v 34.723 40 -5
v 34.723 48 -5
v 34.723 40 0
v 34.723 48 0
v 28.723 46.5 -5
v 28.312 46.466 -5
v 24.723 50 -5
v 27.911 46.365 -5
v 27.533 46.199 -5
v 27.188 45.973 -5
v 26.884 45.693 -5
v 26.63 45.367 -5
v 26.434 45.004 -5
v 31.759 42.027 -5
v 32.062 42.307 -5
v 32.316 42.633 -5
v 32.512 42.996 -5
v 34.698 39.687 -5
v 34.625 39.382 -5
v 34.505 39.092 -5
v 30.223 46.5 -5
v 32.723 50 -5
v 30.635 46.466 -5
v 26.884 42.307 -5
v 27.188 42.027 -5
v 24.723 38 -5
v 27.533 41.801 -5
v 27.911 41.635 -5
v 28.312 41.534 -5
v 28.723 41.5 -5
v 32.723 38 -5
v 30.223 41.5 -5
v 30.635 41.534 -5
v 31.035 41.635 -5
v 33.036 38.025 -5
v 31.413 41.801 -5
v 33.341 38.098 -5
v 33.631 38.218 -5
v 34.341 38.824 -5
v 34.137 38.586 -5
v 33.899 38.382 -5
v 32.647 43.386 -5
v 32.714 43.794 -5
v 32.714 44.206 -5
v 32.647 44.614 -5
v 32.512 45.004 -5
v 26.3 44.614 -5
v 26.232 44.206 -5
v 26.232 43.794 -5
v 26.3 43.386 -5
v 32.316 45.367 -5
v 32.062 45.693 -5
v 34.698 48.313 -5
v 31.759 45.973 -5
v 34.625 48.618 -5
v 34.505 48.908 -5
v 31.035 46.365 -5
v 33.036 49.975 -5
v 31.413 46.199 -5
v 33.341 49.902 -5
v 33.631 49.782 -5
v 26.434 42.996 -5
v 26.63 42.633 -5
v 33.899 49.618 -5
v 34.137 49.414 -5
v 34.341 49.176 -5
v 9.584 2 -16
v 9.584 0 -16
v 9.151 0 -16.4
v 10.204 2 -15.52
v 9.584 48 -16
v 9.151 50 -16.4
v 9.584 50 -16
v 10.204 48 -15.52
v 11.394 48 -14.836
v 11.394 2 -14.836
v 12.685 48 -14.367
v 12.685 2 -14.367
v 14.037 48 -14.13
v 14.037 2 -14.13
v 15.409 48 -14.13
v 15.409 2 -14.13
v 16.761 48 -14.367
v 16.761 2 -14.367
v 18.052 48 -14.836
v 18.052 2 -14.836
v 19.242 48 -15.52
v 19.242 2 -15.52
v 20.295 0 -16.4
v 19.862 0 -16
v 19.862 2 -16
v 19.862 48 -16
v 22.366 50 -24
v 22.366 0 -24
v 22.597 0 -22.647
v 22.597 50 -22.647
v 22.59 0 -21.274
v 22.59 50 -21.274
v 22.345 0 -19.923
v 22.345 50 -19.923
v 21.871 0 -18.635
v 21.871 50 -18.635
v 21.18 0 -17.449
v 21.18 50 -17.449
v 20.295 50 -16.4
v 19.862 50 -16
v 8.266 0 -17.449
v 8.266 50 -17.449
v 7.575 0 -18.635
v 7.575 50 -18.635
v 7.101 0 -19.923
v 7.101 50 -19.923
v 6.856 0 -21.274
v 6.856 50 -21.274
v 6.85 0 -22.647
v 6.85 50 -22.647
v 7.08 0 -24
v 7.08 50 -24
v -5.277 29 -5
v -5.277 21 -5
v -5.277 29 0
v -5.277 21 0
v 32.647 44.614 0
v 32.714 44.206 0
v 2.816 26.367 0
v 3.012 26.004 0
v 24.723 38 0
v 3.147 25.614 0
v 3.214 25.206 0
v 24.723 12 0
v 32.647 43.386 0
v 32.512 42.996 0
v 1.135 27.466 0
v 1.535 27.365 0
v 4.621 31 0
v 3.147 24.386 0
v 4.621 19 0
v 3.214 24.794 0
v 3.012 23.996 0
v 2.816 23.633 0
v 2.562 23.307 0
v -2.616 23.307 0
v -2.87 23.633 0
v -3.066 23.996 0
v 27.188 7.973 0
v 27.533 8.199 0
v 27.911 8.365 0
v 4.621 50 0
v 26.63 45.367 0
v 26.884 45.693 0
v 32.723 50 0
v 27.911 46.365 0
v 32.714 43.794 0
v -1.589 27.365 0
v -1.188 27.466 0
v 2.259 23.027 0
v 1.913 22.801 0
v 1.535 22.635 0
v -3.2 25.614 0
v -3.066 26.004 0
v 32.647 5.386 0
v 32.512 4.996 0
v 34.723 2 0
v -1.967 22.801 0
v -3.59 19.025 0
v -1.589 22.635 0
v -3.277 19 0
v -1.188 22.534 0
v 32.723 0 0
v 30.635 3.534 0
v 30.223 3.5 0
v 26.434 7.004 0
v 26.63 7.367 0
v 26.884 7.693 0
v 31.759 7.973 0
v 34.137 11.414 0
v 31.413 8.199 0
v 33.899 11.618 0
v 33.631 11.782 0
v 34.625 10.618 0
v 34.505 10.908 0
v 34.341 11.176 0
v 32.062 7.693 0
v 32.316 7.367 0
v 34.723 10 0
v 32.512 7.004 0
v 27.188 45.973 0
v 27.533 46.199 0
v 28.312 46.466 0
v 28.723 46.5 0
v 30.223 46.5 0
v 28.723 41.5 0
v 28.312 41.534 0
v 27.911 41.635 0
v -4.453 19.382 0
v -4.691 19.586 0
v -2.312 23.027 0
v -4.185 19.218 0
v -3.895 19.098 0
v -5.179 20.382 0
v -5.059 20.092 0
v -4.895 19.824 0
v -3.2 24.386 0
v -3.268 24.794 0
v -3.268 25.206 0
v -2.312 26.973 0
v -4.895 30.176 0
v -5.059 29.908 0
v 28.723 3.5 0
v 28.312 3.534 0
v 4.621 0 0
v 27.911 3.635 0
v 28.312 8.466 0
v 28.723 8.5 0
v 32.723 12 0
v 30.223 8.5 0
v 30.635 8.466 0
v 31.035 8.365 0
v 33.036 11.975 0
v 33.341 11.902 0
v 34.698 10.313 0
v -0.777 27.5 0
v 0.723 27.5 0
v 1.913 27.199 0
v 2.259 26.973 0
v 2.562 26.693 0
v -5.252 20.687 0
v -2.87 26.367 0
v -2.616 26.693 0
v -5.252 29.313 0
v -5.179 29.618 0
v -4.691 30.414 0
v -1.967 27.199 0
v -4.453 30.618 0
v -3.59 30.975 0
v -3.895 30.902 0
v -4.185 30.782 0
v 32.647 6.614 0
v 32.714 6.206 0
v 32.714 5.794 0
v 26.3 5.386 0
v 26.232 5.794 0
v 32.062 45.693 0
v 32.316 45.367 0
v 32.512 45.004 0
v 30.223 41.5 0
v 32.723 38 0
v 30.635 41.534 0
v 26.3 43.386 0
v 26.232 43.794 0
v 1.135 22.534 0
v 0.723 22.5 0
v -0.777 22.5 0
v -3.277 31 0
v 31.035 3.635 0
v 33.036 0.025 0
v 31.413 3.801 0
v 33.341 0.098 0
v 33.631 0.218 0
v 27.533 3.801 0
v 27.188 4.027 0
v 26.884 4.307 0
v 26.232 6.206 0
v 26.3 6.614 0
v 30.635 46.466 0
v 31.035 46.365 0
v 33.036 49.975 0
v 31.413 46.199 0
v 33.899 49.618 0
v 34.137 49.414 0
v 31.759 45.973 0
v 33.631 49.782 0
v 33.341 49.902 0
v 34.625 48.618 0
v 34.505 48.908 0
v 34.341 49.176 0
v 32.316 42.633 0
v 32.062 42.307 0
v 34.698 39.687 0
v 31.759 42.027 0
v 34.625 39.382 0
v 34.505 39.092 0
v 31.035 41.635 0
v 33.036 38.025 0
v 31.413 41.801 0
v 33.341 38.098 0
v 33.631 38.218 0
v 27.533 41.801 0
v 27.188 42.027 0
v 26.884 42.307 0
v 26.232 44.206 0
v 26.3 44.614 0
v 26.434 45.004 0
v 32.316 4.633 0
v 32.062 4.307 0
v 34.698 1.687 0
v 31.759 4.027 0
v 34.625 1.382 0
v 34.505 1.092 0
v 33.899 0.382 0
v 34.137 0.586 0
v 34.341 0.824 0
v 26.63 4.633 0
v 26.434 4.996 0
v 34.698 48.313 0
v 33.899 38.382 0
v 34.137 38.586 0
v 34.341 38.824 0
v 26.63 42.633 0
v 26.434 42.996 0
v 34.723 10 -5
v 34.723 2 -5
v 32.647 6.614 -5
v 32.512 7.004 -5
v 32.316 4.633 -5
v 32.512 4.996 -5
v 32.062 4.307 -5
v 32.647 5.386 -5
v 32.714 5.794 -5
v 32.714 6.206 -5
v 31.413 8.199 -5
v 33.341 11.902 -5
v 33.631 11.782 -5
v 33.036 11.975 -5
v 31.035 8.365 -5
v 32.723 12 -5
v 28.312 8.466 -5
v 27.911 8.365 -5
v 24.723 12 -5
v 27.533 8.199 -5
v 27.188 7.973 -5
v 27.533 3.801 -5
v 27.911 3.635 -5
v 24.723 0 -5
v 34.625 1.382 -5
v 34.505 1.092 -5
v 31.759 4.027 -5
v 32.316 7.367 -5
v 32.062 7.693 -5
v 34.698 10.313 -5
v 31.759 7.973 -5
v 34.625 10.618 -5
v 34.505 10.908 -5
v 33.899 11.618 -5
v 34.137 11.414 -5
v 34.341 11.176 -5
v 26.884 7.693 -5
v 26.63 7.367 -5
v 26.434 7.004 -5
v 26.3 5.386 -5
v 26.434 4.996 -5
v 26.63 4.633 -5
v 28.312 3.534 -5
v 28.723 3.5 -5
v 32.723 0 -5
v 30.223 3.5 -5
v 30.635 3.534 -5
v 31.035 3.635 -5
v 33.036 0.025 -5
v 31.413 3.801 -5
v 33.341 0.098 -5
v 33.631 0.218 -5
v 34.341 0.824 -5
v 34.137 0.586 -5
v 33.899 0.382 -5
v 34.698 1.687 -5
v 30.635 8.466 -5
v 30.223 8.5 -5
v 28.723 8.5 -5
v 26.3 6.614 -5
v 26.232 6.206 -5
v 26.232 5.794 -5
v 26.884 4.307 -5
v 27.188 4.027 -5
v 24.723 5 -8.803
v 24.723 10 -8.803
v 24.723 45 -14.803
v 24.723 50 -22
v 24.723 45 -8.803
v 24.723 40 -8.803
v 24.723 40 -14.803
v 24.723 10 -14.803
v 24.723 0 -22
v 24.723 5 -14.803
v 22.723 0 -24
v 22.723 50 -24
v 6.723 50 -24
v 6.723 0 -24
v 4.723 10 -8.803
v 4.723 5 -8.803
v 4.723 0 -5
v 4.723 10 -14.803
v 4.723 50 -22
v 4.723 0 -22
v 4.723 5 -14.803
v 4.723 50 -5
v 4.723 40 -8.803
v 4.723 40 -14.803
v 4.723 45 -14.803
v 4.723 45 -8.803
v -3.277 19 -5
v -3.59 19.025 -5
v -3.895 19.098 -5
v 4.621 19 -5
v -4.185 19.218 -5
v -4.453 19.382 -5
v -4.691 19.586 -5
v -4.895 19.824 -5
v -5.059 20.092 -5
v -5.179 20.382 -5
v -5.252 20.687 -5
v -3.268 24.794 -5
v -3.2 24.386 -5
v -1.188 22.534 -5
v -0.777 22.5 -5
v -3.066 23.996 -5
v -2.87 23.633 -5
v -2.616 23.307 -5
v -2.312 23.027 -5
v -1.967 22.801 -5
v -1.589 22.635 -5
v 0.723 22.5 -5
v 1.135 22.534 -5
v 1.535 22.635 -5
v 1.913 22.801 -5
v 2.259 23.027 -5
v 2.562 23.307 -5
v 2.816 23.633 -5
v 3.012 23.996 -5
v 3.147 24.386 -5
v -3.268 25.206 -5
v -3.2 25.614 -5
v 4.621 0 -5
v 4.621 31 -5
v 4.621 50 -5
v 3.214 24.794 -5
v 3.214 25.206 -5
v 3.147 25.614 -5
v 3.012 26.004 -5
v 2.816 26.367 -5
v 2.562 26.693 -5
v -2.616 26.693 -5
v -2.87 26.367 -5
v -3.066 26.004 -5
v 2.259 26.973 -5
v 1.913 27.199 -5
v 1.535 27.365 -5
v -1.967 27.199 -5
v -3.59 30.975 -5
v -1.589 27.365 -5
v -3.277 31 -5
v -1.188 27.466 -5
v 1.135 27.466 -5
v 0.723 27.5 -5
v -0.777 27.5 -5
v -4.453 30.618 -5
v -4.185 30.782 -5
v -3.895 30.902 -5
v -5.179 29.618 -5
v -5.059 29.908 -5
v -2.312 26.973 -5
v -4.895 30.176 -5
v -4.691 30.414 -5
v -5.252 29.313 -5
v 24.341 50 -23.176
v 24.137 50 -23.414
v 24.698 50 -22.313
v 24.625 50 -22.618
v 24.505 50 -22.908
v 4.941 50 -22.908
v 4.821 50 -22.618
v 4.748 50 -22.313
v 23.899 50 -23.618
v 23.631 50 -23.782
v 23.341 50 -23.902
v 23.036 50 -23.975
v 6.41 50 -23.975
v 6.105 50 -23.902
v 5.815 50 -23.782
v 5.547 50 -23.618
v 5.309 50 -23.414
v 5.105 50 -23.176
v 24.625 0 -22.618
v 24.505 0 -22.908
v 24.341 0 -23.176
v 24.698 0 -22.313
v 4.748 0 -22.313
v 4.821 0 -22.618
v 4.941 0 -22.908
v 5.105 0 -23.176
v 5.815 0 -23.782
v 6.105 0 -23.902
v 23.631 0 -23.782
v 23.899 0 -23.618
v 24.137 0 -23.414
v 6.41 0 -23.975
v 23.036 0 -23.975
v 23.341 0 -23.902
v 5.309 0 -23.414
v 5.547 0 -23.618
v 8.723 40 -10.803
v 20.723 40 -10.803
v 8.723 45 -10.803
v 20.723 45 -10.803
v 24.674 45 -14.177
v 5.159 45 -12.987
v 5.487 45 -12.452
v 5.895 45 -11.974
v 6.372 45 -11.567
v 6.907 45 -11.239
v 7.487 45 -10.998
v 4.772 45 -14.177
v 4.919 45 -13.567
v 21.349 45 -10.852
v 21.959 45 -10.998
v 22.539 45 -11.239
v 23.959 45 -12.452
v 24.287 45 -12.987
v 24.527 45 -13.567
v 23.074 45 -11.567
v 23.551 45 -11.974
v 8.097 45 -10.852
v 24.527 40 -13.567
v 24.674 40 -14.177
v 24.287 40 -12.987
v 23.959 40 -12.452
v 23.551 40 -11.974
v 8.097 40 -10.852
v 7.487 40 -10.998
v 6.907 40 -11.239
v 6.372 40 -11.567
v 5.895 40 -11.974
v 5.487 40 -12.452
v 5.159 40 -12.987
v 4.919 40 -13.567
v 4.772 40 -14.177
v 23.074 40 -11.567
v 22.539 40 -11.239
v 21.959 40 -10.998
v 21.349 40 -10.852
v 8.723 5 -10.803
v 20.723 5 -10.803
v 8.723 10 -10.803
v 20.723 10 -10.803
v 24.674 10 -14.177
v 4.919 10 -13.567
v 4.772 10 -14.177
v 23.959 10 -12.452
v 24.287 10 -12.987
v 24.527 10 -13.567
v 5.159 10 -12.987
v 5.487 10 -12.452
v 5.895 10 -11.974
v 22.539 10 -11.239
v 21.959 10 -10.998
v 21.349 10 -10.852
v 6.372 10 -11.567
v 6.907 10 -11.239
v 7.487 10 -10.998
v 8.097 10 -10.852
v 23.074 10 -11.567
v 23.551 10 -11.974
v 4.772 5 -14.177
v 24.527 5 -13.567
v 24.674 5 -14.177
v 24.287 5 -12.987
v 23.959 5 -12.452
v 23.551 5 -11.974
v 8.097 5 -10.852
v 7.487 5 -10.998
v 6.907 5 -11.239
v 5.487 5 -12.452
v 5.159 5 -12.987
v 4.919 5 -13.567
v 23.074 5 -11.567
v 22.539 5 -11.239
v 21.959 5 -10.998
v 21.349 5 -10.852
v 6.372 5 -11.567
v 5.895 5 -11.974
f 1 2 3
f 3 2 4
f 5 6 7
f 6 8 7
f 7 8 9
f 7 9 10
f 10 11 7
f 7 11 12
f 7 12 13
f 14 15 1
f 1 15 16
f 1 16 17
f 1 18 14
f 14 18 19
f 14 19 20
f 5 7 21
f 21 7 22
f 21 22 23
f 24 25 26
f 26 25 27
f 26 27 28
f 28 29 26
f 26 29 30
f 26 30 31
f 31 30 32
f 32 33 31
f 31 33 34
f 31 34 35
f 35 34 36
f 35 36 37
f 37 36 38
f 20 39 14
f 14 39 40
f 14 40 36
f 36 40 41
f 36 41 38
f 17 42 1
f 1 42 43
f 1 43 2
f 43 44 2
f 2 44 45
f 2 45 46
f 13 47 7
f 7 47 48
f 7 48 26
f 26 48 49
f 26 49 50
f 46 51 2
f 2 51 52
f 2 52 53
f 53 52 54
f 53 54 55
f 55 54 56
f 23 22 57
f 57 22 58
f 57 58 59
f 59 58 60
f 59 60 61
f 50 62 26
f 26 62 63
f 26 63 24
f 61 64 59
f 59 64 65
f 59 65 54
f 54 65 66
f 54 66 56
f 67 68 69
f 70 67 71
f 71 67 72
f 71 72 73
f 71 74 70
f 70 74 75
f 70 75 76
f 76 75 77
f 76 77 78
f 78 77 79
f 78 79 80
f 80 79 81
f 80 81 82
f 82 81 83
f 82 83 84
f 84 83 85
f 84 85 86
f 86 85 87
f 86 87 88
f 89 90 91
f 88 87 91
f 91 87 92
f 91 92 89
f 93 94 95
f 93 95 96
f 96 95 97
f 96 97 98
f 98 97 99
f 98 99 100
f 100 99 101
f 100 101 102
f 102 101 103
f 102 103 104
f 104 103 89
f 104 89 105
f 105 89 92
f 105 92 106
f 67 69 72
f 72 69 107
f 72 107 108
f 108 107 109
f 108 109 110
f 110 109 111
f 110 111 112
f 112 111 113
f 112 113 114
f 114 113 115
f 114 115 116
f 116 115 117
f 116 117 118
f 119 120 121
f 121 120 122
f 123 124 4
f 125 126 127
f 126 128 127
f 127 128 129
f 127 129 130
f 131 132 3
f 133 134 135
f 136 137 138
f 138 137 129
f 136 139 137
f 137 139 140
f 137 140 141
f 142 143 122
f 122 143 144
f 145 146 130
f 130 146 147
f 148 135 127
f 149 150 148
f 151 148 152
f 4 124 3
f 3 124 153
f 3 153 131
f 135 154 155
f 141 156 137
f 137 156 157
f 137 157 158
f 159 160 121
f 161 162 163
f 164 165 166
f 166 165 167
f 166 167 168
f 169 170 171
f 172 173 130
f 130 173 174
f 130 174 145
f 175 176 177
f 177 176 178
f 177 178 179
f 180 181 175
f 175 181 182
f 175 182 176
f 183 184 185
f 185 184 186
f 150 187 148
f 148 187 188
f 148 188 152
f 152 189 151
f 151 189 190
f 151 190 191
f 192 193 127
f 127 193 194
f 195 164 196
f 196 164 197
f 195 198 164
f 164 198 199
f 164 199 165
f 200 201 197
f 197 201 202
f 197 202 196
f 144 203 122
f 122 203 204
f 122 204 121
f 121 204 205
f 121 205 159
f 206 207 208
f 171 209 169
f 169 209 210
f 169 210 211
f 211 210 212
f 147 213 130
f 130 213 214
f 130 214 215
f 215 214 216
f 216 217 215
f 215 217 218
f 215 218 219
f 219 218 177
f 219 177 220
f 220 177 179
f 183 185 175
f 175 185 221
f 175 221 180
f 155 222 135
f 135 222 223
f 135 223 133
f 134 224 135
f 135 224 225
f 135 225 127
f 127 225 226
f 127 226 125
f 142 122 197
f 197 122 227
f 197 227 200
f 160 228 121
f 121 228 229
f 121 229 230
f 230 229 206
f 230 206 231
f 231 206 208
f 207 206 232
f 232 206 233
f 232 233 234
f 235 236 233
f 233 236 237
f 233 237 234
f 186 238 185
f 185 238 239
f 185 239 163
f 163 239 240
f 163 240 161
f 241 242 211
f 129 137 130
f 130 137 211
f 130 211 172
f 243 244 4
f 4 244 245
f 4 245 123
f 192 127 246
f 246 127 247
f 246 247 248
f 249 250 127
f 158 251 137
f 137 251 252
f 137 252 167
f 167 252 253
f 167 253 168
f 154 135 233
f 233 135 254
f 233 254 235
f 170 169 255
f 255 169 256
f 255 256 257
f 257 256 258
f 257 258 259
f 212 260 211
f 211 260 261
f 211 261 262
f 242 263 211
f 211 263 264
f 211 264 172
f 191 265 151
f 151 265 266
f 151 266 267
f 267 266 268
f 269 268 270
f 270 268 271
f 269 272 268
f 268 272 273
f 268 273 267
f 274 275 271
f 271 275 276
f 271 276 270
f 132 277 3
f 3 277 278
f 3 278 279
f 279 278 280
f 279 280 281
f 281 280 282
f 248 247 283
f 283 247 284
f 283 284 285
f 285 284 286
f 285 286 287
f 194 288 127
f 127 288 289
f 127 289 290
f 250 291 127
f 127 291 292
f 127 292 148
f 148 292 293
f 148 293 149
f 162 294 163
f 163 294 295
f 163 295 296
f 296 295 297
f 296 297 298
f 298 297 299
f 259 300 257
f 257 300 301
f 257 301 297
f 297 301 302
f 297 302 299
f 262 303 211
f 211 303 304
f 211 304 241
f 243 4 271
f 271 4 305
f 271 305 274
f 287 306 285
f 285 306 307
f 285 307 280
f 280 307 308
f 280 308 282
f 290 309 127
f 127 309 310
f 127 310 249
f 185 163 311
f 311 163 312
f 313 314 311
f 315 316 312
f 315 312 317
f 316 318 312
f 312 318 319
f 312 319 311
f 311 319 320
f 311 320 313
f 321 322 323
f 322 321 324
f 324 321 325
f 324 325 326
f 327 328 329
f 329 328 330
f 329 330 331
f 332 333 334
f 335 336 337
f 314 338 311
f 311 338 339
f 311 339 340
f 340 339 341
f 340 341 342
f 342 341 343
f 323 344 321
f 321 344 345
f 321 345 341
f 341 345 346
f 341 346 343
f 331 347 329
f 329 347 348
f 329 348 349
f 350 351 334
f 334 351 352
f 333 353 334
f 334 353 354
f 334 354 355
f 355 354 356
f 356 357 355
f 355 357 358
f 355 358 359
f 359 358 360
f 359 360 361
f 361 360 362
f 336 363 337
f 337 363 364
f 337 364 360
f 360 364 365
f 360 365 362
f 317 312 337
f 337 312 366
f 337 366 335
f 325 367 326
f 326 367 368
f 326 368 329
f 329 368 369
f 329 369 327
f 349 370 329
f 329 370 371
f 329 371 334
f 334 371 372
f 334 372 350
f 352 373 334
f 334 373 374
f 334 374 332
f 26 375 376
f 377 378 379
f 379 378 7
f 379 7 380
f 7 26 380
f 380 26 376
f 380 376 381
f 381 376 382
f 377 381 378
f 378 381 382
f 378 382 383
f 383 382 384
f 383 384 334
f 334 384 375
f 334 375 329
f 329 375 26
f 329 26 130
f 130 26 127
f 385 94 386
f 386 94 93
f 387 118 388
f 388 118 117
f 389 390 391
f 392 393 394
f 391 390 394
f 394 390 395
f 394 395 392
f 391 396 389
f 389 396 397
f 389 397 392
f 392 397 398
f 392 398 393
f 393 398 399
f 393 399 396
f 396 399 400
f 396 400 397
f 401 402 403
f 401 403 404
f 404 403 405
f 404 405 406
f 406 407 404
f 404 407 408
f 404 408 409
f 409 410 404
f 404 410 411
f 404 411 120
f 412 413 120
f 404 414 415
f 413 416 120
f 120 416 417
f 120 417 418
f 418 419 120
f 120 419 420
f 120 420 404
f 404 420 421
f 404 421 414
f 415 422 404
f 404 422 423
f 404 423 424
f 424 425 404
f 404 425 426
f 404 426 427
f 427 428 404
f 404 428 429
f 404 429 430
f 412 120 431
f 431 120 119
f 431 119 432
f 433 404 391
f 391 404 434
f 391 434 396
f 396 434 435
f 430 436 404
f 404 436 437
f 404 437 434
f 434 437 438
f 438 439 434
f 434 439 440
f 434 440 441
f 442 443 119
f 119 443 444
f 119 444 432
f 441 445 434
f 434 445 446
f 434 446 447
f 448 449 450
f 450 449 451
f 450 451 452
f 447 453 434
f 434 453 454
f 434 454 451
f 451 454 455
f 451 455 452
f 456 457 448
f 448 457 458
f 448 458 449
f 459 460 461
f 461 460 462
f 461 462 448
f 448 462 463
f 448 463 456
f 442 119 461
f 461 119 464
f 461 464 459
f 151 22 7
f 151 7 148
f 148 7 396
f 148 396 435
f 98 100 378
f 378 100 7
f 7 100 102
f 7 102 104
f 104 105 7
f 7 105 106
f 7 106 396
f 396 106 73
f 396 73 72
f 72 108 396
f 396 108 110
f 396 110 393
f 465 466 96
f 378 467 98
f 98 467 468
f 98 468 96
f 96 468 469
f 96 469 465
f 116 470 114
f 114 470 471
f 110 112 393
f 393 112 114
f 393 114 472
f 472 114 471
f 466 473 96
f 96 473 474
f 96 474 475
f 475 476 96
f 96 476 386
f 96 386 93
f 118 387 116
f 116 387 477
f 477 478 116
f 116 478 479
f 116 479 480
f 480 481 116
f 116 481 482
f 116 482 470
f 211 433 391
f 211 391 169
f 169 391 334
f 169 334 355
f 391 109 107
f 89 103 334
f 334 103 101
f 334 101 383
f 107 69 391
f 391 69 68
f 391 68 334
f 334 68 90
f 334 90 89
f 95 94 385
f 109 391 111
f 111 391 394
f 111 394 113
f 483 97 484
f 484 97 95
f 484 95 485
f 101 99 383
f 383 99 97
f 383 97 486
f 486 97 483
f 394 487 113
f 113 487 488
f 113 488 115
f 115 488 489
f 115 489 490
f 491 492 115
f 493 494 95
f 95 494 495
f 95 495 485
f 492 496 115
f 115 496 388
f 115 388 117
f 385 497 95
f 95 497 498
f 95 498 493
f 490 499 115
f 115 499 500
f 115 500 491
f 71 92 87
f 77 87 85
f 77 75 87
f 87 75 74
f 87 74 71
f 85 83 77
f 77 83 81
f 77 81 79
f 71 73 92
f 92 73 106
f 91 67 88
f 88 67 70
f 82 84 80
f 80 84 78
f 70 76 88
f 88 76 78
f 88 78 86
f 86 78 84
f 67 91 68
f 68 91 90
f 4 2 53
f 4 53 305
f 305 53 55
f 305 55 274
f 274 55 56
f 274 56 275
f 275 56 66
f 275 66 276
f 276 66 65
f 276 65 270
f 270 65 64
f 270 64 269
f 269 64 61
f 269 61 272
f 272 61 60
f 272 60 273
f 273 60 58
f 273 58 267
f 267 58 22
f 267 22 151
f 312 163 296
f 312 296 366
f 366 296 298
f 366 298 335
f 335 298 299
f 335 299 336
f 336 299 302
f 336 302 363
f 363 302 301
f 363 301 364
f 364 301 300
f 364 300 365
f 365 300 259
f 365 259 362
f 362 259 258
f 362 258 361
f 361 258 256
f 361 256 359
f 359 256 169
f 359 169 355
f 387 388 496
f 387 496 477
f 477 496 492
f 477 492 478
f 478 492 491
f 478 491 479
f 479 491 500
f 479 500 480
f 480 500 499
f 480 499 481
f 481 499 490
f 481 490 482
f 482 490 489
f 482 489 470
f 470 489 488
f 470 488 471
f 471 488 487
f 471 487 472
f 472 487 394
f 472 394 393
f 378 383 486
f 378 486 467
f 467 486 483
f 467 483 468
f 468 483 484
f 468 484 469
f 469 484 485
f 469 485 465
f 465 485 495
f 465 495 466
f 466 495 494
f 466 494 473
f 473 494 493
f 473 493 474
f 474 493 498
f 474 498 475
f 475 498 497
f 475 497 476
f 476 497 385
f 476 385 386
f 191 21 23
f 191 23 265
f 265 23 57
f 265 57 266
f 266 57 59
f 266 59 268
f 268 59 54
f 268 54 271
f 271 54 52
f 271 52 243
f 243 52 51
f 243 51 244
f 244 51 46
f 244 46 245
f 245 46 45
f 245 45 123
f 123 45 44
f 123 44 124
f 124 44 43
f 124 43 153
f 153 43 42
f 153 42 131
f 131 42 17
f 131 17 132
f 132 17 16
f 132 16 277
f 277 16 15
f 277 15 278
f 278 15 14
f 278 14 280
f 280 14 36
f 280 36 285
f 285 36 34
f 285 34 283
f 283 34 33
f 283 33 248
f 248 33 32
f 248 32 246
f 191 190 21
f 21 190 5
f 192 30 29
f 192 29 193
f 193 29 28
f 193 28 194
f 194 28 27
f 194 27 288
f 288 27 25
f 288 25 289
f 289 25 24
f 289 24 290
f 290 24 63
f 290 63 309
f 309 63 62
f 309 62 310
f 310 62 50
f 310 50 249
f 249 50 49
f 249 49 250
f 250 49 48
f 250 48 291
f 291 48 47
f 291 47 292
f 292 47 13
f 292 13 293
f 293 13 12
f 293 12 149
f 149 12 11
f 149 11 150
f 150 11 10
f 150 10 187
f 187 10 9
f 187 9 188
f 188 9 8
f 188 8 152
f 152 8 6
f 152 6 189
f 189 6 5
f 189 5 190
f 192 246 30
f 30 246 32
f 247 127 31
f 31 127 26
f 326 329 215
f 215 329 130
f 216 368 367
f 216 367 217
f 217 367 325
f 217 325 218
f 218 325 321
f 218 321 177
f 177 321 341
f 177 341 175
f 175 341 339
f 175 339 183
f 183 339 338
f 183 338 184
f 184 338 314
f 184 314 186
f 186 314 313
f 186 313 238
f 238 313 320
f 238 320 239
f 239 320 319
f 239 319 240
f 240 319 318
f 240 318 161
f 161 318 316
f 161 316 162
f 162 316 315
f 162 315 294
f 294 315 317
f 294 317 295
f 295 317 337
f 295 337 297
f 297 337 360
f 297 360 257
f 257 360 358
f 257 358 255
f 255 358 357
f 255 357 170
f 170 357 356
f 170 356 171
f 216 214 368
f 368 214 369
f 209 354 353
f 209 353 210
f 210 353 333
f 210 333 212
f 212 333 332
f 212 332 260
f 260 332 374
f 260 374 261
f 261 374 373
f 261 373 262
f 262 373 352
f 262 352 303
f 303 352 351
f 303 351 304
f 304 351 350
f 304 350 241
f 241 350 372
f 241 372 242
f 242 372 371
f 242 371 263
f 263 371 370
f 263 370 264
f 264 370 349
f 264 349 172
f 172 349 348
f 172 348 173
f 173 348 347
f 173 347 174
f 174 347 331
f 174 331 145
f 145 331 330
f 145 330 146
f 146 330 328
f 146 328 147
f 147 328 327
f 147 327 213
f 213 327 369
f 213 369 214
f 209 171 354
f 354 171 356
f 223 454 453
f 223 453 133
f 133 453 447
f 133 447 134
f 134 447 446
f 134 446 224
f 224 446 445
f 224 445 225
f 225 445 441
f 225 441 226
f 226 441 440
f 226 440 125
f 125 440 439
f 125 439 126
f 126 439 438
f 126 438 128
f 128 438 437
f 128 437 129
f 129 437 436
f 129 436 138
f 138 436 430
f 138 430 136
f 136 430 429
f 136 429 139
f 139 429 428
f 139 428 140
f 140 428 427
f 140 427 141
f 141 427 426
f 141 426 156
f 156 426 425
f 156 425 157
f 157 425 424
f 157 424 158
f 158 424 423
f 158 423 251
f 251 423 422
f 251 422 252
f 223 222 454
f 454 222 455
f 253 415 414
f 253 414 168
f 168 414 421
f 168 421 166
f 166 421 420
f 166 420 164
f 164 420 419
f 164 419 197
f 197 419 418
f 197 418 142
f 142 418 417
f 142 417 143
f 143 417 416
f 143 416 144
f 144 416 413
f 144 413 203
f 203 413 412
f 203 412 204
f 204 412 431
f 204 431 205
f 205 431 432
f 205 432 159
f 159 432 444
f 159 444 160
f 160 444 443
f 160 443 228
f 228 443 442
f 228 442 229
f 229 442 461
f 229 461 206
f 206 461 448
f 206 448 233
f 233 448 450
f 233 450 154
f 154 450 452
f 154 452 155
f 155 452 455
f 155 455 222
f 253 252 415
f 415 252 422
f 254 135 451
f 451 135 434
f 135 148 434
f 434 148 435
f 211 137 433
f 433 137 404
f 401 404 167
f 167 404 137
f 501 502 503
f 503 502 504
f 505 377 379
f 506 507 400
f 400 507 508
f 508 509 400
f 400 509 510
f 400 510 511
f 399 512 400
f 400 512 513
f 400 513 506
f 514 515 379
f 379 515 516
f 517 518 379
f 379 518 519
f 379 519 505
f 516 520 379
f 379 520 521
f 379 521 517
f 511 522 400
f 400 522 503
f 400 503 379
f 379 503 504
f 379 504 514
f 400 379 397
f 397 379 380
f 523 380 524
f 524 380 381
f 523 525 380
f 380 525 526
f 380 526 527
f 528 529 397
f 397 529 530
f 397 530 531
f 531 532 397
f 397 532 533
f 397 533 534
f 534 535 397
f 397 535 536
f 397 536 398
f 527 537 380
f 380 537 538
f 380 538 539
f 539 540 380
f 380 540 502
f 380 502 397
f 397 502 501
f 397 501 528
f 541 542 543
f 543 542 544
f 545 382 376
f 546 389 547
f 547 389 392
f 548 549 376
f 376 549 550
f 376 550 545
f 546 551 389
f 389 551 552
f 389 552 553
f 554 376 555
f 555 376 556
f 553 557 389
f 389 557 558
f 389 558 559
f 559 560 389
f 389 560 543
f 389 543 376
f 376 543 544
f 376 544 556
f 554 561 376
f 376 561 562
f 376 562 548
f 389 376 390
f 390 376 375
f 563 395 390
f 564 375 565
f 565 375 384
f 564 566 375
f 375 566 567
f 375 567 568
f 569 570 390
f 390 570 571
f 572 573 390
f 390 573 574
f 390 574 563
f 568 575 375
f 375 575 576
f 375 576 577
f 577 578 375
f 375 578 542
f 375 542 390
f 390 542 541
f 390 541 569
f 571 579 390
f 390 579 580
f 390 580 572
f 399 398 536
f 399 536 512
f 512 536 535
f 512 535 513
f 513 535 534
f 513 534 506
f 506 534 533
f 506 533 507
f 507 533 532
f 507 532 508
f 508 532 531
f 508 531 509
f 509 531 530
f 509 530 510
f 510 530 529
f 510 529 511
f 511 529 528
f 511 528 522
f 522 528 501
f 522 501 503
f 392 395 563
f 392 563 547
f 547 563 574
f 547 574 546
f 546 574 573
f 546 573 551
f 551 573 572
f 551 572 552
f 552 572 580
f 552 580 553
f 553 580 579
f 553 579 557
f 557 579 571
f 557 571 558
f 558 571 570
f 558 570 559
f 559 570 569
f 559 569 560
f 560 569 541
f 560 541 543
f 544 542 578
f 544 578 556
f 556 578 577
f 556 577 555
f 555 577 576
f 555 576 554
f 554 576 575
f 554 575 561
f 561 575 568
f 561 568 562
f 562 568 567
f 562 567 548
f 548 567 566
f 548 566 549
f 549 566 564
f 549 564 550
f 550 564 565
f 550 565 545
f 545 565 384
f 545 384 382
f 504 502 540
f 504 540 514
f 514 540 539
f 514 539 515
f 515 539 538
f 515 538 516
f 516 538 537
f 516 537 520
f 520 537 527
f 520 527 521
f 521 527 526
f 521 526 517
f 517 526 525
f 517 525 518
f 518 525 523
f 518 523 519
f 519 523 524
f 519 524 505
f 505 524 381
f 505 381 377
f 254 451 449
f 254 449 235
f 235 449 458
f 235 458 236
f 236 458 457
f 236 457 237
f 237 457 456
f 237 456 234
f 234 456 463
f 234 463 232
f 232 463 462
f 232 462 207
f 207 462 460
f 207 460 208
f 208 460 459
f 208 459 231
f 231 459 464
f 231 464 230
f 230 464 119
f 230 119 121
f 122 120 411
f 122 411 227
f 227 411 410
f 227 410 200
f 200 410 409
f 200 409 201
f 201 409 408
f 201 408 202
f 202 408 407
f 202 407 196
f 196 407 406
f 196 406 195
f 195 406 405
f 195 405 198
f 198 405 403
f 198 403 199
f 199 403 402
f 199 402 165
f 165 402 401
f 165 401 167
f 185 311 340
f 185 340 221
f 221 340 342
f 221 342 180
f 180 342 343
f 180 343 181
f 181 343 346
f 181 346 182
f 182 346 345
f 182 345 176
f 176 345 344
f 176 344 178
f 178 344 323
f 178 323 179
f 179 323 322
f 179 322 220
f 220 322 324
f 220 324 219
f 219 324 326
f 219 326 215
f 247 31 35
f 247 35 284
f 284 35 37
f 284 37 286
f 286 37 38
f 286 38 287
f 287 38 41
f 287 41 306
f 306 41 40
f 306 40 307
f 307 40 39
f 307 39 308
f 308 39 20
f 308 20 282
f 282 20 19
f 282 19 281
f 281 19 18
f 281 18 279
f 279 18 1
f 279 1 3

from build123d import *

# Parameters (mm, degrees)
BOSS_EXTRUDE1_DEPTH = 50
SKETCH2_W           = 15.285287044
SKETCH2_H           = 2
BOSS_EXTRUDE2_DEPTH = 10
FILLET1_R           = 2
SKETCH3_W           = 10
SKETCH3_H           = 26
SKETCH3_W_2         = 9.897545425
SKETCH3_H_2         = 19
CUT_EXTRUDE1_DEPTH  = 6
SKETCH4_W           = 2
SKETCH4_H           = 5
CUT_EXTRUDE2_DEPTH  = 31
FILLET2_R           = 4
FILLET3_R           = 2


with BuildPart() as part:
    # Sketch1 → Boss-Extrude1 (new body)
    with BuildSketch(Plane(origin=(0, 0, 0), x_dir=(1, 0, 0), z_dir=(0, 1, 0))):
        with BuildLine():
            Line((-5.276963181, 0), (34.723036819, 0))
            Line((34.723036819, 0), (34.723036819, 5))
            Line((34.723036819, 5), (24.723036819, 5))
            Line((24.723036819, 5), (24.723036819, 24))
            Line((24.723036819, 24), (22.365680341, 24))
            ThreePointArc((22.365680341, 24), (14.723036819, 14.1), (7.080393297, 24))
            Line((7.080393297, 24), (4.723036819, 24))
            Line((4.723036819, 24), (4.723036819, 5))
            Line((4.723036819, 5), (-5.276963181, 5))
            Line((-5.276963181, 5), (-5.276963181, 0))
        make_face()
    extrude(amount=BOSS_EXTRUDE1_DEPTH)

    # Sketch2 → Boss-Extrude2 (add)
    with BuildSketch(Plane(origin=(0, 0, -16), x_dir=(-1, 0, 0), z_dir=(0, 0, -1))):
        with Locations((-14.723036819, 49)):
            Rectangle(SKETCH2_W, SKETCH2_H)
        with Locations((-14.723036819, 1)):
            Rectangle(SKETCH2_W, SKETCH2_H)
    extrude(amount=-BOSS_EXTRUDE2_DEPTH)

    # Fillet1
    fillet1_edges = [part.edges().sort_by_distance(p)[0] for p in [
        (34.723036819, 50, -2.5),
        (34.723036819, 0, -2.5),
        (-5.276963181, 0, -2.5),
        (4.723036819, 25, -24),
        (24.723036819, 25, -24),
        (-5.276963181, 50, -2.5),
    ]]
    fillet(fillet1_edges, radius=FILLET1_R)

    # Sketch3 → Cut-Extrude1 (cut, through all)
    with BuildSketch(Plane(origin=(0, 0, -5), x_dir=(-1, 0, 0), z_dir=(0, 0, -1))):
        with BuildLine():
            Line((-0.723036819, 27.5), (0.776963181, 27.5))
            ThreePointArc((0.776963181, 27.5), (3.276963181, 25), (0.776963181, 22.5))
            Line((0.776963181, 22.5), (-0.723036819, 22.5))
            ThreePointArc((-0.723036819, 22.5), (-3.223036819, 25), (-0.723036819, 27.5))
        make_face()
        with BuildLine():
            Line((-30.223036819, 46.5), (-28.723036819, 46.5))
            ThreePointArc((-28.723036819, 46.5), (-26.223036819, 44), (-28.723036819, 41.5))
            Line((-28.723036819, 41.5), (-30.223036819, 41.5))
            ThreePointArc((-30.223036819, 41.5), (-32.723036819, 44), (-30.223036819, 46.5))
        make_face()
        with Locations((-29.723036819, 25)):
            Rectangle(SKETCH3_W, SKETCH3_H)
        with BuildLine():
            Line((-30.223036819, 8.5), (-28.723036819, 8.5))
            ThreePointArc((-28.723036819, 8.5), (-26.223036819, 6), (-28.723036819, 3.5))
            Line((-28.723036819, 3.5), (-30.223036819, 3.5))
            ThreePointArc((-30.223036819, 3.5), (-32.723036819, 6), (-30.223036819, 8.5))
        make_face()
        with Locations((0.328190468, 40.5)):
            Rectangle(SKETCH3_W_2, SKETCH3_H_2)
        with Locations((0.328190468, 9.5)):
            Rectangle(SKETCH3_W_2, SKETCH3_H_2)
    extrude(amount=-CUT_EXTRUDE1_DEPTH, mode=Mode.SUBTRACT)

    # Sketch4 → Cut-Extrude2 (cut, through all)
    with BuildSketch(Plane.ZY.offset(-4.723036819)):
        with Locations((-9.802694021, 42.5)):
            Rectangle(SKETCH4_W, SKETCH4_H)
        with Locations((-9.802694021, 7.5)):
            Rectangle(SKETCH4_W, SKETCH4_H)
    extrude(amount=-CUT_EXTRUDE2_DEPTH, mode=Mode.SUBTRACT)

    # Fillet2
    fillet2_edges = [part.edges().sort_by_distance(p)[0] for p in [
        (24.723036819, 42.5, -10.802694021),
        (4.723036819, 42.5, -10.802694021),
        (24.723036819, 7.5, -10.802694021),
        (4.723036819, 7.5, -10.802694021),
    ]]
    fillet(fillet2_edges, radius=FILLET2_R)

    # Fillet3
    fillet3_edges = [part.edges().sort_by_distance(p)[0] for p in [
        (34.723036819, 12, -2.5),
        (34.723036819, 38, -2.5),
        (-5.276963181, 31, -2.5),
        (-5.276963181, 19, -2.5),
    ]]
    fillet(fillet3_edges, radius=FILLET3_R)


solid = part.part
